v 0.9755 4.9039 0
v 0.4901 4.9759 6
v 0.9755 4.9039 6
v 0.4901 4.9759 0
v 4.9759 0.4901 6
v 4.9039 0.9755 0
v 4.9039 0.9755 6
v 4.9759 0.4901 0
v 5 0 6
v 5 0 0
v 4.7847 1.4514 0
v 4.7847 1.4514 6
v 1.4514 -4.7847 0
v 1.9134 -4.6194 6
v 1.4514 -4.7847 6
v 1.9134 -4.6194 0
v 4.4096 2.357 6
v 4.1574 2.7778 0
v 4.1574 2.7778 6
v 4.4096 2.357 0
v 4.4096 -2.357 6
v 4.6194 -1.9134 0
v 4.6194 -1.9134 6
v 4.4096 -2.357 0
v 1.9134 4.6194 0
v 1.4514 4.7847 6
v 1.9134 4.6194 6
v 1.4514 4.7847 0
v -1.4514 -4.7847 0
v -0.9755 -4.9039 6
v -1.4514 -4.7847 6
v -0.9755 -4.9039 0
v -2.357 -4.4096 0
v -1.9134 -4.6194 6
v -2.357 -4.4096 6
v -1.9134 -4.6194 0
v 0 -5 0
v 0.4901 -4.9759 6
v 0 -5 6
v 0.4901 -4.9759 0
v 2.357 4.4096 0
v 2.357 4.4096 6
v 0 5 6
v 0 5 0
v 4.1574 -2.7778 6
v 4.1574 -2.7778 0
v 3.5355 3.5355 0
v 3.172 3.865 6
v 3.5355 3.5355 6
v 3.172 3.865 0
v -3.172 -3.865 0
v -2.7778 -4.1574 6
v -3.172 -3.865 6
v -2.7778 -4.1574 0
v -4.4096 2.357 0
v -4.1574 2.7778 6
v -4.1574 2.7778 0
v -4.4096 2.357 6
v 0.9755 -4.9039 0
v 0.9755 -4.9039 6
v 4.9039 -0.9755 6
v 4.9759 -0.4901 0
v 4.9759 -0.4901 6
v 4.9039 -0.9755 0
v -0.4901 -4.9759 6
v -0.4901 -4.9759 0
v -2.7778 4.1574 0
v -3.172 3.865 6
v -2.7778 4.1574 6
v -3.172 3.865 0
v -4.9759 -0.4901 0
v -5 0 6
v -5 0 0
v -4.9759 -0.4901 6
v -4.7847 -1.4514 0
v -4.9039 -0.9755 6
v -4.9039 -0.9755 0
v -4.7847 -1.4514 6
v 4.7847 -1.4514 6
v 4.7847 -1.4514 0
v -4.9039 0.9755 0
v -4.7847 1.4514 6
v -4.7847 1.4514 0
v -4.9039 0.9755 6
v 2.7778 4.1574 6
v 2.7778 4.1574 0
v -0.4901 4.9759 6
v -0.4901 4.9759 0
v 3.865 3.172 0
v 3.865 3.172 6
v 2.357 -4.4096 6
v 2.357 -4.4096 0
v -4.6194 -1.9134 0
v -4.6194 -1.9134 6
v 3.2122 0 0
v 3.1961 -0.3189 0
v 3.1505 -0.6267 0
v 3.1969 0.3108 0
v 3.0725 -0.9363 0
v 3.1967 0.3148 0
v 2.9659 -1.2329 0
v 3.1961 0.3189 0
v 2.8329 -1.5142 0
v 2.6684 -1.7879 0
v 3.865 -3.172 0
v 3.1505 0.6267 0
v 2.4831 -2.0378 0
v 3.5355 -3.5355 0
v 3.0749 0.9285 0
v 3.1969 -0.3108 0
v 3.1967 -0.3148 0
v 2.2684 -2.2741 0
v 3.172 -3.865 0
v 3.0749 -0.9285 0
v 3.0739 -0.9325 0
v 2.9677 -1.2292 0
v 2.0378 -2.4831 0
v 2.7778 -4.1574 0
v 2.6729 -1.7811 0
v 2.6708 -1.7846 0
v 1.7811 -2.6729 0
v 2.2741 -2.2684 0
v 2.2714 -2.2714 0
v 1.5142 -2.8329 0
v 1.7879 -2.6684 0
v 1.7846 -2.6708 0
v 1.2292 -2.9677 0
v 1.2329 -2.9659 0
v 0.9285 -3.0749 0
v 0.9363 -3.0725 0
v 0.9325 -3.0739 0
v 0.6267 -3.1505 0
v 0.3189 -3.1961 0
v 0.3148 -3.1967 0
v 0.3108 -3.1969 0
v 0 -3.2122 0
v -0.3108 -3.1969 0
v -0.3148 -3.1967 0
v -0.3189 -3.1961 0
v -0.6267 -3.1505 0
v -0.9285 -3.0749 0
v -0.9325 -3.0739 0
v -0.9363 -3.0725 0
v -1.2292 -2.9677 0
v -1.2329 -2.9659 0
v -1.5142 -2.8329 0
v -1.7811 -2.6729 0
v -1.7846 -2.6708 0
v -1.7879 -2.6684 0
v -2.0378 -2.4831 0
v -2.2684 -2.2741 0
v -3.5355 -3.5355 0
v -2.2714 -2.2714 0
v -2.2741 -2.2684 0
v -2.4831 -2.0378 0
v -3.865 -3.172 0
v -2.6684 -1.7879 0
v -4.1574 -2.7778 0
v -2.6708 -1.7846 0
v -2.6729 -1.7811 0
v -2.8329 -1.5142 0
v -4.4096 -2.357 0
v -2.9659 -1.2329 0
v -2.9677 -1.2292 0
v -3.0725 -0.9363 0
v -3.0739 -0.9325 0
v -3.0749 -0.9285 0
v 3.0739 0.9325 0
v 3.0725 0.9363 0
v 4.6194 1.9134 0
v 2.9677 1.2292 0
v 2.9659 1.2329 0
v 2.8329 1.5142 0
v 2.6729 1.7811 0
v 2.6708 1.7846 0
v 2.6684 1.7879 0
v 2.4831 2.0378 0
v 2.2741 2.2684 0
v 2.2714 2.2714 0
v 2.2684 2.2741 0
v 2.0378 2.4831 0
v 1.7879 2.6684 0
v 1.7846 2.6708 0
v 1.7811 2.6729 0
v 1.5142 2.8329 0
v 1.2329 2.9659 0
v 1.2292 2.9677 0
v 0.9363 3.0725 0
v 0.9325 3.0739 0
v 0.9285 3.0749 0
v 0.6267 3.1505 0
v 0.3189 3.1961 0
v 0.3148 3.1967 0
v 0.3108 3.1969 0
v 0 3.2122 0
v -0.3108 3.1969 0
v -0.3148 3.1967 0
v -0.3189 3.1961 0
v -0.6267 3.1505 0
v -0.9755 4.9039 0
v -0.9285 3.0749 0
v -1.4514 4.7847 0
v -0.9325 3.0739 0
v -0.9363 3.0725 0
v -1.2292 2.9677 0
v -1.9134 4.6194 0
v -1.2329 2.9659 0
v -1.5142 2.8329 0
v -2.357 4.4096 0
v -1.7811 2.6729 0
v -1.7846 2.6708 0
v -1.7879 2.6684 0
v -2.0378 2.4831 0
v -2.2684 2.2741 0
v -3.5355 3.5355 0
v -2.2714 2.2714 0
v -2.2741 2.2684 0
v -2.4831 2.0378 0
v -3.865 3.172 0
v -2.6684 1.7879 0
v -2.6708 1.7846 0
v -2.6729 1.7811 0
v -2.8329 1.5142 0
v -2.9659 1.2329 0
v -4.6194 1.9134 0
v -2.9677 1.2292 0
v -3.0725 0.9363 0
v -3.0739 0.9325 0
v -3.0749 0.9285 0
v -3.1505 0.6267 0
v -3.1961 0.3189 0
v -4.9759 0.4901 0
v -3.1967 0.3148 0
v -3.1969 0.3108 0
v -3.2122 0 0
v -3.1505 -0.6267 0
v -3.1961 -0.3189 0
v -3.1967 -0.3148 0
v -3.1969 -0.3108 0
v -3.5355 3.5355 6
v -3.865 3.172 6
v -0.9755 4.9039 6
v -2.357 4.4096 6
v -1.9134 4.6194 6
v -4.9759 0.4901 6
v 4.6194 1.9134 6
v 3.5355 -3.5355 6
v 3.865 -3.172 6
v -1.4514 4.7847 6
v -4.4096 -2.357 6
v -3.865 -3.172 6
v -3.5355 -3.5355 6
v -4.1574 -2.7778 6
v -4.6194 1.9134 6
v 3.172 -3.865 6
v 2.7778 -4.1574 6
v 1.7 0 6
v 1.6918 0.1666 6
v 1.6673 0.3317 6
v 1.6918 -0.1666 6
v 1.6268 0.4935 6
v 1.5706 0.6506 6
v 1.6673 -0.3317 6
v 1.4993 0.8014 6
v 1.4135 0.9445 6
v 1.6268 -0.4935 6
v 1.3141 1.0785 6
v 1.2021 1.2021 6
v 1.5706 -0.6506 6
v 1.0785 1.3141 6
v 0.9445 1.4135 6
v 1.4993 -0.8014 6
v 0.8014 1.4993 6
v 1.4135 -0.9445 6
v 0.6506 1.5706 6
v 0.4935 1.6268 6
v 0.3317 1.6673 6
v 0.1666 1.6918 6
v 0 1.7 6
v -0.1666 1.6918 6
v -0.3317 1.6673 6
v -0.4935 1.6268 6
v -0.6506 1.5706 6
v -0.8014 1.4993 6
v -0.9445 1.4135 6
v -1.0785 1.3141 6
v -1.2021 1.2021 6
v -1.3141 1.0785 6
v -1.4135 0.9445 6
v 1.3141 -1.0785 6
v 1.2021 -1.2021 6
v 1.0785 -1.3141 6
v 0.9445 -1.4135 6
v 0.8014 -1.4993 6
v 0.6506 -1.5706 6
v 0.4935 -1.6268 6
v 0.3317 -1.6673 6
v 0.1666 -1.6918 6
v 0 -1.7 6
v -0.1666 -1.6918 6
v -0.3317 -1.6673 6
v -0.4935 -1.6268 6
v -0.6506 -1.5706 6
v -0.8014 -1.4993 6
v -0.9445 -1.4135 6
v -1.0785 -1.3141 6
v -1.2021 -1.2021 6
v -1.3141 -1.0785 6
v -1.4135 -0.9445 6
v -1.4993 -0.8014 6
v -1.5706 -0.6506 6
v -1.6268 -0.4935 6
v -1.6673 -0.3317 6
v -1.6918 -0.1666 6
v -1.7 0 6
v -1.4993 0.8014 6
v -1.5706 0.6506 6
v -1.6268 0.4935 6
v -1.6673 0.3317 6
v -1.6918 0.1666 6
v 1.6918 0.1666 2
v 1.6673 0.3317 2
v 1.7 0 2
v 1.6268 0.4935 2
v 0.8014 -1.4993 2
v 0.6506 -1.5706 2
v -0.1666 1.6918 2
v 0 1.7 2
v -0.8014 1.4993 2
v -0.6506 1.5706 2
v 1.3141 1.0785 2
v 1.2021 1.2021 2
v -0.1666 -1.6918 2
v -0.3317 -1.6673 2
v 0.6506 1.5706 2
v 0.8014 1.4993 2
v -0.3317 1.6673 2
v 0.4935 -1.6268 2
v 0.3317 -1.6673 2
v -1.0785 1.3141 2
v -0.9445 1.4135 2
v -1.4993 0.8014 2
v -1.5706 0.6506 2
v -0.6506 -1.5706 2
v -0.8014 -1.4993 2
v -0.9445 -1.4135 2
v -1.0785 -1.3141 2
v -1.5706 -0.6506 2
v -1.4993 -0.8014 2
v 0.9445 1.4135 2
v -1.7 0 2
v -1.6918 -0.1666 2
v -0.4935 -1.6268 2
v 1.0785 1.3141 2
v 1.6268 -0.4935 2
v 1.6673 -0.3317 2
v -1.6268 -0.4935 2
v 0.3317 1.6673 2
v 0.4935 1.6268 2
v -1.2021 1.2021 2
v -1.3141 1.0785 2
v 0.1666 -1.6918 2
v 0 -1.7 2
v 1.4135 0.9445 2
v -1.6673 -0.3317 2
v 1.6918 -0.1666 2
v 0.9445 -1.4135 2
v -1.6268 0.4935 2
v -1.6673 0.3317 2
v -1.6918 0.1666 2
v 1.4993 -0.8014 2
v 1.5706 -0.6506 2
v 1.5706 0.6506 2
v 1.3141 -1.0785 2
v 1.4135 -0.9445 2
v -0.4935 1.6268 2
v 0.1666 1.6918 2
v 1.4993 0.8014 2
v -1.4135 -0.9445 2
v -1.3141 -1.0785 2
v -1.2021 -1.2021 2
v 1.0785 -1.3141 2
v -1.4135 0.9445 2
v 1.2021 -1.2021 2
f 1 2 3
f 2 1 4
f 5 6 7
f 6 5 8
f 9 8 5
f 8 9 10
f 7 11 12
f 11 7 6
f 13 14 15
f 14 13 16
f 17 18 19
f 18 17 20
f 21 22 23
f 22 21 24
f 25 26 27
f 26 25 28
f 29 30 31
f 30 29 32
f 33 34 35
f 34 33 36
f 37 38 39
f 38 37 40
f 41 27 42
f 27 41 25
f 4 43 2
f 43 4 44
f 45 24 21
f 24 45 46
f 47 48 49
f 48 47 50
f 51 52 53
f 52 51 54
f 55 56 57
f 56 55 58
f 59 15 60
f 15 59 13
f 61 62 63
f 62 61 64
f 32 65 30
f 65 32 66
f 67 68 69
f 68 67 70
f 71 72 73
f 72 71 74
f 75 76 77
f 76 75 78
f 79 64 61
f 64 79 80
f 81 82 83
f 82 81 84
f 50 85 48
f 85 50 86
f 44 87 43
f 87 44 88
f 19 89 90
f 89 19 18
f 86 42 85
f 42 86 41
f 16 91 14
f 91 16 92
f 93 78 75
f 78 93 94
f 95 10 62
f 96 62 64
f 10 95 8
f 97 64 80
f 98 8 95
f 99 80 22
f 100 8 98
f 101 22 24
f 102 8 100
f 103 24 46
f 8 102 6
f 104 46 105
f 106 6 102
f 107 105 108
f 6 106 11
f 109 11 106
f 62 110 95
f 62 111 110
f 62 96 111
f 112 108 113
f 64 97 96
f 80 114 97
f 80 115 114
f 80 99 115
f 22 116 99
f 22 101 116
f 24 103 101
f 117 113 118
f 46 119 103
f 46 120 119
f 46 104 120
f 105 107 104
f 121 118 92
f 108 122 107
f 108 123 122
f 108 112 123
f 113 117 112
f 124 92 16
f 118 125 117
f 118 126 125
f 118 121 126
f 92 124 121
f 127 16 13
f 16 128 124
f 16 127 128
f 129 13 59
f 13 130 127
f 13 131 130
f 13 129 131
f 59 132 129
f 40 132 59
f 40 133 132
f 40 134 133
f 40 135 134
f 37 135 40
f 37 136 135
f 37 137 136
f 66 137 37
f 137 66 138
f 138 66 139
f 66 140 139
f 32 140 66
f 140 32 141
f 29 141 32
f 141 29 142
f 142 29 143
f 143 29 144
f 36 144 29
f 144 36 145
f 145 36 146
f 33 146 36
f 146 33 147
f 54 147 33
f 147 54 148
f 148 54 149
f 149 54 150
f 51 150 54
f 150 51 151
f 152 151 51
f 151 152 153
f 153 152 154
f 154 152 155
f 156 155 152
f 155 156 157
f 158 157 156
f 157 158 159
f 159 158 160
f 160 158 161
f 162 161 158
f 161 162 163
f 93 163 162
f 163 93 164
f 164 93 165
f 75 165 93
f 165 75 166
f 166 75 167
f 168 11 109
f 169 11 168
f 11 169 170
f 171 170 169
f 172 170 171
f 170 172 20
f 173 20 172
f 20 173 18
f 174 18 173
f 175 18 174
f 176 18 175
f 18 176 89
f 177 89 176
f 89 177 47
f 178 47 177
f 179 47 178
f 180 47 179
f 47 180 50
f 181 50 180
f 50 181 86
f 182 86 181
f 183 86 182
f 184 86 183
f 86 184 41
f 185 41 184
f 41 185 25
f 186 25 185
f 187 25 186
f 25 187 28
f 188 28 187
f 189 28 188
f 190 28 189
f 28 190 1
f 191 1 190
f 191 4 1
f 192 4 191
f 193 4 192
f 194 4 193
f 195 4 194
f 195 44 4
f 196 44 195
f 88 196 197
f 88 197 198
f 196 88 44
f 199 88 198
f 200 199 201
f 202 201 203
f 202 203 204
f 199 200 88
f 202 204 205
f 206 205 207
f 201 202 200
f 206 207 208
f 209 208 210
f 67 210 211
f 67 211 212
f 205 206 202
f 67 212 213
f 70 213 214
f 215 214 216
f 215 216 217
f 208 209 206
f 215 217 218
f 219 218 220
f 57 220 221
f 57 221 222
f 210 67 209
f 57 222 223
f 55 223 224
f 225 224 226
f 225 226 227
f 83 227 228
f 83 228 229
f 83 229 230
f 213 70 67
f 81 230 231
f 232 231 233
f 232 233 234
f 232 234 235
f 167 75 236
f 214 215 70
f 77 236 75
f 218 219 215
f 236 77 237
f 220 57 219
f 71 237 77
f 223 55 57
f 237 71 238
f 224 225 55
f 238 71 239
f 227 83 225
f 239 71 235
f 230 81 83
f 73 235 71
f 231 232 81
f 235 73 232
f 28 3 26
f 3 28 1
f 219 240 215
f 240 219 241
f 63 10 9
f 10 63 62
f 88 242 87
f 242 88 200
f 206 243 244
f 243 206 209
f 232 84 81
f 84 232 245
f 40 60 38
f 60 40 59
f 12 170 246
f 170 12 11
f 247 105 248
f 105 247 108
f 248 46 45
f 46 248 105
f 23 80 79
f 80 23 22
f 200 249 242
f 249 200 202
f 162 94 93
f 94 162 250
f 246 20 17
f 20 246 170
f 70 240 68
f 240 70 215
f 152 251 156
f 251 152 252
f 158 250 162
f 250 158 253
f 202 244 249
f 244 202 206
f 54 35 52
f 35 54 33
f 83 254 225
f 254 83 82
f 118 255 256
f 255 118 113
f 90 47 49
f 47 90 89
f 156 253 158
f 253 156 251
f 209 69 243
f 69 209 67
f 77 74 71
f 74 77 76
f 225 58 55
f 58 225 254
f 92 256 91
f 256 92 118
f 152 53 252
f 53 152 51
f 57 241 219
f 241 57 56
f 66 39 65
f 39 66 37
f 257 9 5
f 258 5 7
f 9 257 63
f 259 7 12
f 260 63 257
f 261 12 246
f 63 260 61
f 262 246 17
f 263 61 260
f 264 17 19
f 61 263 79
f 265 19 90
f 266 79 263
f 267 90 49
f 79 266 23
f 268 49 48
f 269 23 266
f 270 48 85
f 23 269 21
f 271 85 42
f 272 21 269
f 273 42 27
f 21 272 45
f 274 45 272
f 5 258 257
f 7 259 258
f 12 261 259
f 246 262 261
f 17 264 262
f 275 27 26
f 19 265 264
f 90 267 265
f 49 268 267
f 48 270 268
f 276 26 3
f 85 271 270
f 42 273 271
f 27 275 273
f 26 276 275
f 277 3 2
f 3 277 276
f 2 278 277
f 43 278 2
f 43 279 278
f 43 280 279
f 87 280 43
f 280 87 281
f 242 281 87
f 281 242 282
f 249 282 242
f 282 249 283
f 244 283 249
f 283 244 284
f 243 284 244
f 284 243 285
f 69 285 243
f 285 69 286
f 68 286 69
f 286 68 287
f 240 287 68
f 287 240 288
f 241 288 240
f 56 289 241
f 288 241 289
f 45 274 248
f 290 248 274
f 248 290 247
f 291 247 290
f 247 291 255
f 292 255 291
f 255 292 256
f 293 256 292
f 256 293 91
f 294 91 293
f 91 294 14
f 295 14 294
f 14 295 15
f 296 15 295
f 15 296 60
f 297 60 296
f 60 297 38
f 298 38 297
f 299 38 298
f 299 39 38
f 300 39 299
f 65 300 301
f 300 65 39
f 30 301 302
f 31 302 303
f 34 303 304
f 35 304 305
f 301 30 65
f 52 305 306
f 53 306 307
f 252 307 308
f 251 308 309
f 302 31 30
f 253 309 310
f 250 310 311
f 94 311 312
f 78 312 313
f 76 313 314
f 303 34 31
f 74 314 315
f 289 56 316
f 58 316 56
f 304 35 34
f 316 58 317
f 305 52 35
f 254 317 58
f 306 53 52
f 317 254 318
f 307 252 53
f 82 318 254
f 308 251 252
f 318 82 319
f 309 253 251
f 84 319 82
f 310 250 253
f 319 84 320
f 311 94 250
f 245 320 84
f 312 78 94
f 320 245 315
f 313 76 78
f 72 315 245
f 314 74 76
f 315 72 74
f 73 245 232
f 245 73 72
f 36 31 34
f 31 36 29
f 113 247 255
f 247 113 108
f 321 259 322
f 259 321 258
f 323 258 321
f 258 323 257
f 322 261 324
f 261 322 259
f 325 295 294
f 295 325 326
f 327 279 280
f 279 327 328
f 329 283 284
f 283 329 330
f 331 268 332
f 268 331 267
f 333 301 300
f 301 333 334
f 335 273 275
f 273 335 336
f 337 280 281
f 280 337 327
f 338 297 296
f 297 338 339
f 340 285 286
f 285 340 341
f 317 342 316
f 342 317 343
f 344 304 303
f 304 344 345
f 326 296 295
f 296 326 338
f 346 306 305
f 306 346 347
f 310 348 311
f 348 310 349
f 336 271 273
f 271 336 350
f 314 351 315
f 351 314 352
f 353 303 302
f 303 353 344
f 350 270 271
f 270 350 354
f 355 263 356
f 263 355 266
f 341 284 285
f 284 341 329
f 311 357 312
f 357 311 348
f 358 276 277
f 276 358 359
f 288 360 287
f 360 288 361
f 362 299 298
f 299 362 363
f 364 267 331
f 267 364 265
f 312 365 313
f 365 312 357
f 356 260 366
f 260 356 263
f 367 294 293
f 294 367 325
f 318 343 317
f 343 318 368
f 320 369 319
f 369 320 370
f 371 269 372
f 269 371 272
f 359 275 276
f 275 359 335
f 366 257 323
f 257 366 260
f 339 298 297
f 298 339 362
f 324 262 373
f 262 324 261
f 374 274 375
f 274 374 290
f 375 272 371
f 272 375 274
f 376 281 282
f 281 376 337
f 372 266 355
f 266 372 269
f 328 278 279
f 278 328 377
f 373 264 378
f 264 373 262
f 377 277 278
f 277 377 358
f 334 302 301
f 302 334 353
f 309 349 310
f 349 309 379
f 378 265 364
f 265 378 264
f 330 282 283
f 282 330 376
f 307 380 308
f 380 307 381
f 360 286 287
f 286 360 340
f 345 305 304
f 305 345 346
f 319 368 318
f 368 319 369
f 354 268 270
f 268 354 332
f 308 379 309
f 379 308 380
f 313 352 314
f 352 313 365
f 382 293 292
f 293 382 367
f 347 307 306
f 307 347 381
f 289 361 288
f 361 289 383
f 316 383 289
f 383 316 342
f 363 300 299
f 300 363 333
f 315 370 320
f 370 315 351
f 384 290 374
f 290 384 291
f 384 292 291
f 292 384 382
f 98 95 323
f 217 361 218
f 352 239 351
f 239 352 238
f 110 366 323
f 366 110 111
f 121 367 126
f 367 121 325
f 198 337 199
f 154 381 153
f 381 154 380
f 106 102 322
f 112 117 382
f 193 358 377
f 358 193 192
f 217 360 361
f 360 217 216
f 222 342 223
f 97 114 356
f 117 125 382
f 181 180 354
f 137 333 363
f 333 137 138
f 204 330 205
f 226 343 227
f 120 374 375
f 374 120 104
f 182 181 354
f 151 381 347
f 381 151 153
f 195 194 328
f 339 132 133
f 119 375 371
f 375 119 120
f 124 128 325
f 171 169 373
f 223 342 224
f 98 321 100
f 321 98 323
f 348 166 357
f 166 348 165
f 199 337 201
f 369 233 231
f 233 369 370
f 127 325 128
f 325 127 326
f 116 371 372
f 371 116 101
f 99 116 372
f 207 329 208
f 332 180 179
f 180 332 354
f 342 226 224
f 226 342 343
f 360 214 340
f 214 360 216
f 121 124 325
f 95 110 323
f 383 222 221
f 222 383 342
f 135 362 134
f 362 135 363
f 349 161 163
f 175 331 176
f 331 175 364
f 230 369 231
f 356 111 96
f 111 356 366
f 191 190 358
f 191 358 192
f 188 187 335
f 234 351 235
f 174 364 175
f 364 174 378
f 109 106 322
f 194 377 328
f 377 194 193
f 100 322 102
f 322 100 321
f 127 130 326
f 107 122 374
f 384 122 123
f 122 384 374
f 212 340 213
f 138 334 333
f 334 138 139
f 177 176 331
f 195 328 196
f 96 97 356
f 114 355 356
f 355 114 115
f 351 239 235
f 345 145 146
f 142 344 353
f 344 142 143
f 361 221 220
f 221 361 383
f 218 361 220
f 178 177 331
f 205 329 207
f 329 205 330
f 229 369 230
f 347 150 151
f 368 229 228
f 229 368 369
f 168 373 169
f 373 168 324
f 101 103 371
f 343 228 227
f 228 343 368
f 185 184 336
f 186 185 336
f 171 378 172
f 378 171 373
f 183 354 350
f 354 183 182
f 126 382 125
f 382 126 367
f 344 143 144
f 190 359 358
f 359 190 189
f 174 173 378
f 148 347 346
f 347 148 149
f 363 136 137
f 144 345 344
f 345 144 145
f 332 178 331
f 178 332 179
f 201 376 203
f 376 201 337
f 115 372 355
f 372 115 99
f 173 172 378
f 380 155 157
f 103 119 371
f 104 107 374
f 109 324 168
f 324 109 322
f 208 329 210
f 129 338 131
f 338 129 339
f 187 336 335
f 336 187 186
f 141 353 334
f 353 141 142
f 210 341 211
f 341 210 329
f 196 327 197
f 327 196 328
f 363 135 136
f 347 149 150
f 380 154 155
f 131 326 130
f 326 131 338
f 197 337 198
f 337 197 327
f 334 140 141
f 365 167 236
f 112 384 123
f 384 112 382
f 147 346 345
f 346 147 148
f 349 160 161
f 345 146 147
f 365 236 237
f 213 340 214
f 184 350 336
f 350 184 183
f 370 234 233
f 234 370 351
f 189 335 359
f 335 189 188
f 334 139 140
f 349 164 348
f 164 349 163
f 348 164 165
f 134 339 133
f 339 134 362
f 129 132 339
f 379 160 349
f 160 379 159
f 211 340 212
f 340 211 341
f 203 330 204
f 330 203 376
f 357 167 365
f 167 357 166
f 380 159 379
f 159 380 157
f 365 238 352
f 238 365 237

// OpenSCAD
//
// ============================================================================
// SteamMachine UM790
// Project Phoenix
//
// Archivo  : foot.scad
// Versión  : 1.0
// Fecha    : 2026-08-19
// Autor    : Pep Ventura (asistido por Claude)
//
// Pie desmontable, atornillado al suelo del chasis.
//
// PEDIDO POR EL USUARIO (2026-08-19): "Lo quiero liso y diseñar
// cuatro patas para atornillarlas a posteriori" — sustituye las
// patas integradas de una pieza (que dejaban voladizos y
// necesitaban soporte de impresión al tumbar el suelo). El suelo
// (floor.scad) ahora tiene insertos M3 ciegos en las mismas 4
// posiciones donde antes estaban las patas
// (floorLegMountInserts()); este pie se atornilla desde abajo.
//
// Coincide en tamaño con las patas originales (leg_footprint,
// 00_parametros.scad/floor.scad) para no dejar hueco visible al
// borde del suelo.
//
// ============================================================================

include <../../../00_parametros.scad>;
include <../../reference/components/assembly_positions.scad>;

$fn = 64;

part_version = "1.0";


//=============================================================================
// MEDIDAS DEL PIE
//=============================================================================

foot_diameter = 10.0;  // = leg_footprint en floor.scad, mismo tamaño que las patas originales
foot_height   = 6.0;   // ESTIMADO — antes 4mm integrado; algo más de margen de ventilación al ser pieza aparte, ajustable sin tocar el suelo

foot_screw_clearance_diameter = 3.4;  // holgura de paso para M3
foot_screw_csk_diameter = 6.5;  // ESTIMADO — igual que floor_mount_csk_diameter en floor.scad
foot_screw_csk_depth = 2.0;  // ESTIMADO — profundidad del avellanado, dentro del grosor del pie


//=============================================================================
// PIE COMPLETO
//=============================================================================

module foot()
{

    difference()
    {

        cylinder(d = foot_diameter, h = foot_height);

        // Taladro de paso — el tornillo entra por abajo (donde toca
        // el suelo real) y sale roscando hacia arriba en el
        // inserto del suelo del chasis.
        translate([0, 0, -0.1])
            cylinder(d = foot_screw_clearance_diameter, h = foot_height + 0.2);

        // Avellanado en la cara inferior (la que toca el suelo
        // real), para que la cabeza del tornillo no sobresalga y
        // el pie apoye plano.
        translate([0, 0, -0.05])
            cylinder(d1 = foot_screw_csk_diameter, d2 = foot_screw_clearance_diameter, h = foot_screw_csk_depth + 0.05);

    }

}


//=============================================================================
// PREVIEW
//=============================================================================

color("SlateGray")
    foot();
